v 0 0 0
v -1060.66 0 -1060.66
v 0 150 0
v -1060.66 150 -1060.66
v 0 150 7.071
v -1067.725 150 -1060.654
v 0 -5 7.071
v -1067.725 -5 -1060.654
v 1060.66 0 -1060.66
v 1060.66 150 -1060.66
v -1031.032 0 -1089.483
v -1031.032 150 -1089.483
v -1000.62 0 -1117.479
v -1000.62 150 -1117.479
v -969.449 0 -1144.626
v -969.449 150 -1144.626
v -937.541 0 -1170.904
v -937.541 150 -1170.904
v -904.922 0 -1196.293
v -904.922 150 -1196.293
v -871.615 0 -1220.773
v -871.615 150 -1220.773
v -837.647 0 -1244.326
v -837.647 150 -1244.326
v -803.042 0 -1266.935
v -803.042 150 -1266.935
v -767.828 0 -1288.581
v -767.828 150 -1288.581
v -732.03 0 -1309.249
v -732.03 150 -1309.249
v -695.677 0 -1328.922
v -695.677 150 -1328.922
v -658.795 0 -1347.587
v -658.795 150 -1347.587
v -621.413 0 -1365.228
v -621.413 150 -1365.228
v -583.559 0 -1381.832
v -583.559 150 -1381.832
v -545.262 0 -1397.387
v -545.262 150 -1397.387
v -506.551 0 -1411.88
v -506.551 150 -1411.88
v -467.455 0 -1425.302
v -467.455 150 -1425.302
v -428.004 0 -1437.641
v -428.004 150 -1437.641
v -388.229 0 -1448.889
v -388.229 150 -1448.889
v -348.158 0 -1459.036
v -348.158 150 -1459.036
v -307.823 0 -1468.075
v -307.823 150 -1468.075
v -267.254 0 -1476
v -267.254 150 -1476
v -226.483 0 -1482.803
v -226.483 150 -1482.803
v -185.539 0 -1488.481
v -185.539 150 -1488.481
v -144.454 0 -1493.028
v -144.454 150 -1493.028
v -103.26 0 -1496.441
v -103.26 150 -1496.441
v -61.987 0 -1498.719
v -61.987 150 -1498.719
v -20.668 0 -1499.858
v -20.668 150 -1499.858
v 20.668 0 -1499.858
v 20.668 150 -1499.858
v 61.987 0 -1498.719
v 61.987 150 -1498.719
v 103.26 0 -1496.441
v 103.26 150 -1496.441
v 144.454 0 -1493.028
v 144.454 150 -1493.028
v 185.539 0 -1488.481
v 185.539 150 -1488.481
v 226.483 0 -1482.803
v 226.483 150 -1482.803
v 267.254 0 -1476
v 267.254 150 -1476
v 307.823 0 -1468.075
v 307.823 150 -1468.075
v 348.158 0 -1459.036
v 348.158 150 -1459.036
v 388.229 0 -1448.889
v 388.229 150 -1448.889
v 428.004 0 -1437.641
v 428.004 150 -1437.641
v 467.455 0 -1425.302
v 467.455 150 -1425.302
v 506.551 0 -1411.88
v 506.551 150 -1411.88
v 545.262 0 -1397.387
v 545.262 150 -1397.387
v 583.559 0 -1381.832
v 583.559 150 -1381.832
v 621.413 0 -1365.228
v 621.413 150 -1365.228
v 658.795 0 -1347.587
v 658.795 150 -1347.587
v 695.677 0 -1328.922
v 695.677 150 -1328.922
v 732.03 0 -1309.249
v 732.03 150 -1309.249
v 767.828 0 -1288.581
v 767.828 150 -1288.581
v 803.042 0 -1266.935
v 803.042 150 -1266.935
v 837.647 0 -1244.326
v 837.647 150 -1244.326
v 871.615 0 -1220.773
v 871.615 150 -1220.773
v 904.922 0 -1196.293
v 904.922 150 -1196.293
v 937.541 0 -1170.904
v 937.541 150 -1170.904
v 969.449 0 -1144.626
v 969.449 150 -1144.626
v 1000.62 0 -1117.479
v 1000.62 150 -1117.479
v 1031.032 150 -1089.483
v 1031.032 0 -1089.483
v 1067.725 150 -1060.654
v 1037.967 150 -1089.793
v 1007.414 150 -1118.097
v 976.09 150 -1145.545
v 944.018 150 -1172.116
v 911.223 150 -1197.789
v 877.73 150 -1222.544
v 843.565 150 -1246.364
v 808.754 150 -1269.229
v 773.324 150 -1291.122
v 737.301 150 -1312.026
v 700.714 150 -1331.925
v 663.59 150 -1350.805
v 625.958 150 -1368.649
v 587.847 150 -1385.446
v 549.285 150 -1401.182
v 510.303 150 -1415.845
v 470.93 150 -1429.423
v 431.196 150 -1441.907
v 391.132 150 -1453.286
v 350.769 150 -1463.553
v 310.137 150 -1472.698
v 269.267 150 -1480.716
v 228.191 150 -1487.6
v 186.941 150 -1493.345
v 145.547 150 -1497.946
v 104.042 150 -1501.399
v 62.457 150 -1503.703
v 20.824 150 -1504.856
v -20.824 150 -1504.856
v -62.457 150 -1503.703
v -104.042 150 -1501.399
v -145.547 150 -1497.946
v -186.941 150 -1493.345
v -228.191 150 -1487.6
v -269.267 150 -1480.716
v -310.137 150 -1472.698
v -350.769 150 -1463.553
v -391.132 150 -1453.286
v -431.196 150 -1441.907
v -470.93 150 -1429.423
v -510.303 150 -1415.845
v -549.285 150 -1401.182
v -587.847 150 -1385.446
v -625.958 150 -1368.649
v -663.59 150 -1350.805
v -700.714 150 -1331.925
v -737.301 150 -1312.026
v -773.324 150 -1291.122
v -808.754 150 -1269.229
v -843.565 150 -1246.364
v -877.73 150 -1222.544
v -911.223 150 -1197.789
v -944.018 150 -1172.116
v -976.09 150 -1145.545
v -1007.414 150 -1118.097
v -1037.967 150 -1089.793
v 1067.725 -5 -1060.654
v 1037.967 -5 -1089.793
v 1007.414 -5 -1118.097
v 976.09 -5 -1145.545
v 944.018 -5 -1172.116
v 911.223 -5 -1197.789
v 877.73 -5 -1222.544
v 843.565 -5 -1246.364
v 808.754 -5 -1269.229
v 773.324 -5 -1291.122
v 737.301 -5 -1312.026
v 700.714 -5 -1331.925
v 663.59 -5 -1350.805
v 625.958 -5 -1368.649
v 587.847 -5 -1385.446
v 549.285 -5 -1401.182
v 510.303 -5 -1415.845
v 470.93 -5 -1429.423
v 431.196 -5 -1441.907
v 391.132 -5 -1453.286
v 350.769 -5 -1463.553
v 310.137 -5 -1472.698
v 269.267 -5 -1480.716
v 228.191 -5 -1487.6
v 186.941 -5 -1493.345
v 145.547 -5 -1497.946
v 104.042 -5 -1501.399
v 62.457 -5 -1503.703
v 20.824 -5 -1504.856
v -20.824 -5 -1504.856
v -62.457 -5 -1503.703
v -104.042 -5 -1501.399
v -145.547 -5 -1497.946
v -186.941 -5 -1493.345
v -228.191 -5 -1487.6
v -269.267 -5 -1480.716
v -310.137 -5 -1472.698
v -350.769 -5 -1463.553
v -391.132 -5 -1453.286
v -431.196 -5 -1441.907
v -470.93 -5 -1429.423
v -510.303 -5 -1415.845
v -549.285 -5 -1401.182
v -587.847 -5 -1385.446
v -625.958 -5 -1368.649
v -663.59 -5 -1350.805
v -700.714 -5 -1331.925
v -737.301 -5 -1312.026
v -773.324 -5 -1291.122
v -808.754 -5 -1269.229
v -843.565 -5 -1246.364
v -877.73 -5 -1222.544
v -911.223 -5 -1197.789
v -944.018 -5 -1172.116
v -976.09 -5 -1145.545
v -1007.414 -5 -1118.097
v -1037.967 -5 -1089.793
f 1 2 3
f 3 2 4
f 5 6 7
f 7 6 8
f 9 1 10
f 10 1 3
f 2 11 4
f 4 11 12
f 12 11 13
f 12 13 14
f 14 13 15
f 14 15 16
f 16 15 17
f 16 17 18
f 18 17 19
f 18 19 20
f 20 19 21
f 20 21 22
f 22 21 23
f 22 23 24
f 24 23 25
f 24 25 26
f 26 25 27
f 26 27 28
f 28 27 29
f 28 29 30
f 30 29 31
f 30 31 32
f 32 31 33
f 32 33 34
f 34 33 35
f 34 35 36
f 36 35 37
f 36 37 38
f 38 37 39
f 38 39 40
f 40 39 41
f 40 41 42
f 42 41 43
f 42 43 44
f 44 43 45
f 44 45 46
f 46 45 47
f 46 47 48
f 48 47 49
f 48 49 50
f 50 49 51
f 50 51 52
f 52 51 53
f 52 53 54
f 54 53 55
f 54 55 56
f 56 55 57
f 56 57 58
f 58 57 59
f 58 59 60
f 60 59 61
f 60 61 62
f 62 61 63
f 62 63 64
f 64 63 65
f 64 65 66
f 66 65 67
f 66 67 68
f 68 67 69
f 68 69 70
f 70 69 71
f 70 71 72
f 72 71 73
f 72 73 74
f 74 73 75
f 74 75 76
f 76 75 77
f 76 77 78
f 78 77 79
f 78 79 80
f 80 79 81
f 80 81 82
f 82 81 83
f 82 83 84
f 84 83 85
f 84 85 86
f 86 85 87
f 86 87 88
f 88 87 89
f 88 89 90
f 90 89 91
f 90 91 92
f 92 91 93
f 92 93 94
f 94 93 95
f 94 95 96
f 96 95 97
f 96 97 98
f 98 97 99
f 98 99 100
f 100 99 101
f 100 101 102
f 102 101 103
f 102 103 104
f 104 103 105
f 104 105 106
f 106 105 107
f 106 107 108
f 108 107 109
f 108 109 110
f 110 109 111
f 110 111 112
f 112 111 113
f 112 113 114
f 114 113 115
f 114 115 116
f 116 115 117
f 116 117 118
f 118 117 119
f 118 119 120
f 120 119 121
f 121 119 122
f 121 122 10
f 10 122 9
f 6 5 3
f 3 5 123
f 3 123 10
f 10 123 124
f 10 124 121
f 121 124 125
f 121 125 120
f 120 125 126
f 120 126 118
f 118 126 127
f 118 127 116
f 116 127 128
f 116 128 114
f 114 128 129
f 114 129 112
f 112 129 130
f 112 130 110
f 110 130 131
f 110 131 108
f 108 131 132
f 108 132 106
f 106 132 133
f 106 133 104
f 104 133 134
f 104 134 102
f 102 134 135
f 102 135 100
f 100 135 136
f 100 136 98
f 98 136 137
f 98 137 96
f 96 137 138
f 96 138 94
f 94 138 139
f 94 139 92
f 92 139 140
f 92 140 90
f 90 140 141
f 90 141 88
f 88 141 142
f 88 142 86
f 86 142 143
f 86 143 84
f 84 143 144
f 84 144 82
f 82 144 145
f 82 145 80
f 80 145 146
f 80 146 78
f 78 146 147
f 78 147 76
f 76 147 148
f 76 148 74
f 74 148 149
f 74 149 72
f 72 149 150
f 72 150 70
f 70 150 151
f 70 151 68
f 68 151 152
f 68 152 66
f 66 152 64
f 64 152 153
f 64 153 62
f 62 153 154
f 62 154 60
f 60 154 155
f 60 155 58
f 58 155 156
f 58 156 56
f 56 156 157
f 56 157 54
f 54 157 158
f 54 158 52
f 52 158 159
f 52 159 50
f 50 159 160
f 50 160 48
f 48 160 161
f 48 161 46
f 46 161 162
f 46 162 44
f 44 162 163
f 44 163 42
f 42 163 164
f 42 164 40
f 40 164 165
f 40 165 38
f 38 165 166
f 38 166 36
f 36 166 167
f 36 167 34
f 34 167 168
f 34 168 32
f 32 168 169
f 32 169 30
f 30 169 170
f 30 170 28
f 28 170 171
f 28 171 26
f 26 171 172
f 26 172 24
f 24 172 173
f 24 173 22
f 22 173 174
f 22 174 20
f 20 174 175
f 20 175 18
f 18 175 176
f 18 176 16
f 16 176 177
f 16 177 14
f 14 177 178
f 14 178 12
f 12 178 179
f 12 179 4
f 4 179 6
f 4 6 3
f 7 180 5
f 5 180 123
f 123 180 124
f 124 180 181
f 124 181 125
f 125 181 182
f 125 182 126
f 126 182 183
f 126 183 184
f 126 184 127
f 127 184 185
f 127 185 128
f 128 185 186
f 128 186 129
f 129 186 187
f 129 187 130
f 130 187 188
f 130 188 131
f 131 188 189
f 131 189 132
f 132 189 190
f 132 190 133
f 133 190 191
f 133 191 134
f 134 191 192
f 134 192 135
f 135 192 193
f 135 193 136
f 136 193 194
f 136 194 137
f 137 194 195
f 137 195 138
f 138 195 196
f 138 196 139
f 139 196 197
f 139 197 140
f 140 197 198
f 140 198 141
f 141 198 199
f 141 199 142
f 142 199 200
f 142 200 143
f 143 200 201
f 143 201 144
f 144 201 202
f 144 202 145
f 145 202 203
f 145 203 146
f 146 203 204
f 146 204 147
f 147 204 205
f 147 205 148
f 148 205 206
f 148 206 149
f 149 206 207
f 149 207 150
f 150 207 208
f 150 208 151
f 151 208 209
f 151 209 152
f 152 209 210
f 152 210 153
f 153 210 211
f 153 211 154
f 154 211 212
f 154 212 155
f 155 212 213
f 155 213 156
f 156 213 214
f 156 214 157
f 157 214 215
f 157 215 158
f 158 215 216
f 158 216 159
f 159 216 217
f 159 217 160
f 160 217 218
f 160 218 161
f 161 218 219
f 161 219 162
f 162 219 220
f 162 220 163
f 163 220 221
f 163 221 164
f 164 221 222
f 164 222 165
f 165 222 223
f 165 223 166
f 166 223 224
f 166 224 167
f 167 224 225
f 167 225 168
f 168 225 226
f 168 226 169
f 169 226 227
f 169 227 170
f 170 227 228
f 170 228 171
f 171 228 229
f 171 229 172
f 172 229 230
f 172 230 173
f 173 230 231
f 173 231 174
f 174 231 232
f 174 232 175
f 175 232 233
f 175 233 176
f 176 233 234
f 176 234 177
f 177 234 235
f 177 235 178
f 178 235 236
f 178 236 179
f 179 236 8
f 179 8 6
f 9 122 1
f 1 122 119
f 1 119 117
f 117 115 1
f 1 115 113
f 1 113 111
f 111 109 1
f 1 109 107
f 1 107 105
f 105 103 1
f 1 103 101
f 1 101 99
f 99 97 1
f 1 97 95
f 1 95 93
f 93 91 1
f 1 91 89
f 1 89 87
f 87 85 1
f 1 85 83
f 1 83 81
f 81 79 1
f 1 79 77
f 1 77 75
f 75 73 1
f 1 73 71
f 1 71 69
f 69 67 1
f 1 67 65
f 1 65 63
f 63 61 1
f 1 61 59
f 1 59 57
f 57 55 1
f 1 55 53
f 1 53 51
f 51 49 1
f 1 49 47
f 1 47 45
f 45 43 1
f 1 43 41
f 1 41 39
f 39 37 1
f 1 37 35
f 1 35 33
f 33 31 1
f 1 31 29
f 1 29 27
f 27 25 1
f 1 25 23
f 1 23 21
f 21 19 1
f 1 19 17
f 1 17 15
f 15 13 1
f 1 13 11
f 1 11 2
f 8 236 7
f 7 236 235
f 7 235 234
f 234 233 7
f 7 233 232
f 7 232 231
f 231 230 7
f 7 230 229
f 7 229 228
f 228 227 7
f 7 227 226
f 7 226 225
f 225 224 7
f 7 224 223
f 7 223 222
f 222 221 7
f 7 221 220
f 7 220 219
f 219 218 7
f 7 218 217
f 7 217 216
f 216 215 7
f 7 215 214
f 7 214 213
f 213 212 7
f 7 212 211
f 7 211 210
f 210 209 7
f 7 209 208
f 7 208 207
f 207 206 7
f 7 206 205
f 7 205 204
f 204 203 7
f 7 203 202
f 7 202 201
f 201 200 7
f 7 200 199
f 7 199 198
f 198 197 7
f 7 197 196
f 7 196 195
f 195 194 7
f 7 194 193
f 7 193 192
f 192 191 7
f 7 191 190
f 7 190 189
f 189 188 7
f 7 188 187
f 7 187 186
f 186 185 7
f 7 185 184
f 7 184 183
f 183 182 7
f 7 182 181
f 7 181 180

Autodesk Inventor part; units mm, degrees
ref_plane "YZ Plane" through (0, 0, 0) normal (1, 0, 0) x (0, 1, 0)
ref_plane "XZ Plane" through (0, 0, 0) normal (0, 1, 0) x (-1, 0, 0)
ref_plane "XY Plane" through (0, 0, 0) normal (0, 0, 1) x (1, 0, 0)
sketch "草圖1" plane through (0, 0, 0) normal (0, 1, 0) x (-1, 0, 0)
  line L0 (0, 0) -> (-1060.6602, -1060.6602)
  arc A0 (-1060.6602, -1060.6602) -> (0, -1500) centre (0, 0) ccw
  line L1 (0, -1935.3977) -> (0, 330.8159) projected
  arc A1 (-1067.7254, -1060.6543) -> (0, -1505) centre (0, 0) ccw
  line L2 (-1067.7254, -1060.6543) -> (0, 7.0711)
  line L3 (0, 0) -> (1060.6602, -1060.6602)
  arc A2 (0, -1500) -> (1060.6602, -1060.6602) centre (0, 0) ccw
  arc A3 (0, -1505) -> (1067.7254, -1060.6543) centre (0, 0) ccw
  line L4 (1067.7254, -1060.6543) -> (0, 7.0711)
  dimension "d0" = 45
  dimension "d2" = 1500
  dimension "d3" = 5
  dimension "d5" = 5
extrude "擠出1" add sketch "草圖1" against normal blind 5 contours L1 A0 L0 | L0 A0 L1 A1 L2
extrude "擠出6" add sketch "草圖1" along normal blind 150 contours L0 A0 L1 A1 L2
sketch "草圖29" plane through (0, 0, 0) normal (0, 1, 0) x (1, 0, 0)
  line L0 (0, 0) -> (1060.6602, 1060.6602) projected
  arc A0 (1060.6602, 1060.6602) -> (0, 1500) centre (0, 0) ccw projected
  line L1 (0, 1500) -> (0, 0) projected
mirror "鏡射6" about plane through (0, 0, 0) normal (1, 0, 0) of "擠出1", "擠出6"
properties part number "棒球底座"
